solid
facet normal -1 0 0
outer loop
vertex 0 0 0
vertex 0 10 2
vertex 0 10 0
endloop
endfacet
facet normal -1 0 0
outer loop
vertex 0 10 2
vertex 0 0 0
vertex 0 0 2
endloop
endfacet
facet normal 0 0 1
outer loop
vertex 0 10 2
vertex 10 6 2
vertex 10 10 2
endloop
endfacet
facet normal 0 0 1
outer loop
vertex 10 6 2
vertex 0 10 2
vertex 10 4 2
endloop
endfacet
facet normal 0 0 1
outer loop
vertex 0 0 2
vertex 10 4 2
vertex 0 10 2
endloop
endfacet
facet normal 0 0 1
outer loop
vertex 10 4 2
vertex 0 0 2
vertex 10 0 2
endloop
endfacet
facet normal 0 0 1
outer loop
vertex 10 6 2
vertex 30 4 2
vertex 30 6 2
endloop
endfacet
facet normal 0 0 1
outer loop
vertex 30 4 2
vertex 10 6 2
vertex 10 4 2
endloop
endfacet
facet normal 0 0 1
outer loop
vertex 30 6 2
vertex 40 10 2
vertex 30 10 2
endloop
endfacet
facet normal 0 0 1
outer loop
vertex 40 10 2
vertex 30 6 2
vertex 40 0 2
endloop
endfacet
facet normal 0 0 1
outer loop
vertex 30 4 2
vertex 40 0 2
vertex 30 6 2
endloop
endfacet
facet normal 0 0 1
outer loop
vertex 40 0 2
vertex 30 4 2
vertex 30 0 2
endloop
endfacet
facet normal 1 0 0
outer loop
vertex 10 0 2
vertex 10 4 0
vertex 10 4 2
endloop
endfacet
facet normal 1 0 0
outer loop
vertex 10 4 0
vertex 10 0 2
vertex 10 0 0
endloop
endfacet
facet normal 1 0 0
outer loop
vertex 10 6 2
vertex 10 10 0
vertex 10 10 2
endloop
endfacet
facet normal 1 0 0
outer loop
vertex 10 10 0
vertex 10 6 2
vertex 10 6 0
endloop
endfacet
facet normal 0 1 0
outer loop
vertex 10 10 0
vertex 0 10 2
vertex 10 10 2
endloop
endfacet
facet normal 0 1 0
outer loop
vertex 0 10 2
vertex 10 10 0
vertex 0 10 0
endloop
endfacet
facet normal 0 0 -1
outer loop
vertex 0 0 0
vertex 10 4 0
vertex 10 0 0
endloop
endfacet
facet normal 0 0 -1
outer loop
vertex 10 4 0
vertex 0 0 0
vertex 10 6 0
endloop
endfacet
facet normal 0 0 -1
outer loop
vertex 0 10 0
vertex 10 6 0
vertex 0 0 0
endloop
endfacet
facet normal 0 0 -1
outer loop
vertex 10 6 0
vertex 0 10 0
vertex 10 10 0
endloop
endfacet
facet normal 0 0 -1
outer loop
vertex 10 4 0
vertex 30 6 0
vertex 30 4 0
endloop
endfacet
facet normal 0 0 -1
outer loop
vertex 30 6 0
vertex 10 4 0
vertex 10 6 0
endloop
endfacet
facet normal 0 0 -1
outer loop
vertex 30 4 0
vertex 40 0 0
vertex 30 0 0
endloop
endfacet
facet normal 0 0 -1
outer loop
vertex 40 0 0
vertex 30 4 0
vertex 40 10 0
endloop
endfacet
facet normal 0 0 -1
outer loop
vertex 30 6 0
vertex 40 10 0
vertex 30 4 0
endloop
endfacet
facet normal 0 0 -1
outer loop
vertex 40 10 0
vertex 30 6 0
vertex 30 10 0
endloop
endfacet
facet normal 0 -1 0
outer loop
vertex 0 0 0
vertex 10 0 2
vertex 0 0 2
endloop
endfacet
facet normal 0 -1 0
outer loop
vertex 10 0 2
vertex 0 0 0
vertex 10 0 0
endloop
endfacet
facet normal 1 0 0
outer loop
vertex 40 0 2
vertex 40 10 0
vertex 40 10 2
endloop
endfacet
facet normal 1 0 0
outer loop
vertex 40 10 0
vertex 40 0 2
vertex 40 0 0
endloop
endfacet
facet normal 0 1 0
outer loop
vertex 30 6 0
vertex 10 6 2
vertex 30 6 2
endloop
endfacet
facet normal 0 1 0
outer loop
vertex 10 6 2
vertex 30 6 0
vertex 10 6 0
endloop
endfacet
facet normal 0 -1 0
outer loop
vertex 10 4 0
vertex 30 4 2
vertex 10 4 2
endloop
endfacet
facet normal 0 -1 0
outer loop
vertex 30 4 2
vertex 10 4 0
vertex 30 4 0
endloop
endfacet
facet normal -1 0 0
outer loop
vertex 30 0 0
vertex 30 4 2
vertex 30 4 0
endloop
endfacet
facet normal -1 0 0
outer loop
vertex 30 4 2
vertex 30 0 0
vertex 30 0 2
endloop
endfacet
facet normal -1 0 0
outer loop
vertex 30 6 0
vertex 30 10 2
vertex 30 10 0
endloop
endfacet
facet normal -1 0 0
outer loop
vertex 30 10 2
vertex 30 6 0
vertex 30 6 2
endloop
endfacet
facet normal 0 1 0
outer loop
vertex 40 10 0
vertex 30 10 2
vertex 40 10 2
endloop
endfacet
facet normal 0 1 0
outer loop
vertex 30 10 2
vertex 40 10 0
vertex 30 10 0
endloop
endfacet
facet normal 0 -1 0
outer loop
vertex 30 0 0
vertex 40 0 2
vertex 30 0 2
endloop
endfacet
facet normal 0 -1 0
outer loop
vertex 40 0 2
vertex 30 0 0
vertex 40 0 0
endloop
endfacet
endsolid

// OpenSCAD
union() {
    cube([10, 10, 2]);
    translate([10, 4, 0]) {
        cube([30, 2, 2]);
    }
    translate([30, 0, 0]) {
        cube([10, 10, 2]);
    }
}
